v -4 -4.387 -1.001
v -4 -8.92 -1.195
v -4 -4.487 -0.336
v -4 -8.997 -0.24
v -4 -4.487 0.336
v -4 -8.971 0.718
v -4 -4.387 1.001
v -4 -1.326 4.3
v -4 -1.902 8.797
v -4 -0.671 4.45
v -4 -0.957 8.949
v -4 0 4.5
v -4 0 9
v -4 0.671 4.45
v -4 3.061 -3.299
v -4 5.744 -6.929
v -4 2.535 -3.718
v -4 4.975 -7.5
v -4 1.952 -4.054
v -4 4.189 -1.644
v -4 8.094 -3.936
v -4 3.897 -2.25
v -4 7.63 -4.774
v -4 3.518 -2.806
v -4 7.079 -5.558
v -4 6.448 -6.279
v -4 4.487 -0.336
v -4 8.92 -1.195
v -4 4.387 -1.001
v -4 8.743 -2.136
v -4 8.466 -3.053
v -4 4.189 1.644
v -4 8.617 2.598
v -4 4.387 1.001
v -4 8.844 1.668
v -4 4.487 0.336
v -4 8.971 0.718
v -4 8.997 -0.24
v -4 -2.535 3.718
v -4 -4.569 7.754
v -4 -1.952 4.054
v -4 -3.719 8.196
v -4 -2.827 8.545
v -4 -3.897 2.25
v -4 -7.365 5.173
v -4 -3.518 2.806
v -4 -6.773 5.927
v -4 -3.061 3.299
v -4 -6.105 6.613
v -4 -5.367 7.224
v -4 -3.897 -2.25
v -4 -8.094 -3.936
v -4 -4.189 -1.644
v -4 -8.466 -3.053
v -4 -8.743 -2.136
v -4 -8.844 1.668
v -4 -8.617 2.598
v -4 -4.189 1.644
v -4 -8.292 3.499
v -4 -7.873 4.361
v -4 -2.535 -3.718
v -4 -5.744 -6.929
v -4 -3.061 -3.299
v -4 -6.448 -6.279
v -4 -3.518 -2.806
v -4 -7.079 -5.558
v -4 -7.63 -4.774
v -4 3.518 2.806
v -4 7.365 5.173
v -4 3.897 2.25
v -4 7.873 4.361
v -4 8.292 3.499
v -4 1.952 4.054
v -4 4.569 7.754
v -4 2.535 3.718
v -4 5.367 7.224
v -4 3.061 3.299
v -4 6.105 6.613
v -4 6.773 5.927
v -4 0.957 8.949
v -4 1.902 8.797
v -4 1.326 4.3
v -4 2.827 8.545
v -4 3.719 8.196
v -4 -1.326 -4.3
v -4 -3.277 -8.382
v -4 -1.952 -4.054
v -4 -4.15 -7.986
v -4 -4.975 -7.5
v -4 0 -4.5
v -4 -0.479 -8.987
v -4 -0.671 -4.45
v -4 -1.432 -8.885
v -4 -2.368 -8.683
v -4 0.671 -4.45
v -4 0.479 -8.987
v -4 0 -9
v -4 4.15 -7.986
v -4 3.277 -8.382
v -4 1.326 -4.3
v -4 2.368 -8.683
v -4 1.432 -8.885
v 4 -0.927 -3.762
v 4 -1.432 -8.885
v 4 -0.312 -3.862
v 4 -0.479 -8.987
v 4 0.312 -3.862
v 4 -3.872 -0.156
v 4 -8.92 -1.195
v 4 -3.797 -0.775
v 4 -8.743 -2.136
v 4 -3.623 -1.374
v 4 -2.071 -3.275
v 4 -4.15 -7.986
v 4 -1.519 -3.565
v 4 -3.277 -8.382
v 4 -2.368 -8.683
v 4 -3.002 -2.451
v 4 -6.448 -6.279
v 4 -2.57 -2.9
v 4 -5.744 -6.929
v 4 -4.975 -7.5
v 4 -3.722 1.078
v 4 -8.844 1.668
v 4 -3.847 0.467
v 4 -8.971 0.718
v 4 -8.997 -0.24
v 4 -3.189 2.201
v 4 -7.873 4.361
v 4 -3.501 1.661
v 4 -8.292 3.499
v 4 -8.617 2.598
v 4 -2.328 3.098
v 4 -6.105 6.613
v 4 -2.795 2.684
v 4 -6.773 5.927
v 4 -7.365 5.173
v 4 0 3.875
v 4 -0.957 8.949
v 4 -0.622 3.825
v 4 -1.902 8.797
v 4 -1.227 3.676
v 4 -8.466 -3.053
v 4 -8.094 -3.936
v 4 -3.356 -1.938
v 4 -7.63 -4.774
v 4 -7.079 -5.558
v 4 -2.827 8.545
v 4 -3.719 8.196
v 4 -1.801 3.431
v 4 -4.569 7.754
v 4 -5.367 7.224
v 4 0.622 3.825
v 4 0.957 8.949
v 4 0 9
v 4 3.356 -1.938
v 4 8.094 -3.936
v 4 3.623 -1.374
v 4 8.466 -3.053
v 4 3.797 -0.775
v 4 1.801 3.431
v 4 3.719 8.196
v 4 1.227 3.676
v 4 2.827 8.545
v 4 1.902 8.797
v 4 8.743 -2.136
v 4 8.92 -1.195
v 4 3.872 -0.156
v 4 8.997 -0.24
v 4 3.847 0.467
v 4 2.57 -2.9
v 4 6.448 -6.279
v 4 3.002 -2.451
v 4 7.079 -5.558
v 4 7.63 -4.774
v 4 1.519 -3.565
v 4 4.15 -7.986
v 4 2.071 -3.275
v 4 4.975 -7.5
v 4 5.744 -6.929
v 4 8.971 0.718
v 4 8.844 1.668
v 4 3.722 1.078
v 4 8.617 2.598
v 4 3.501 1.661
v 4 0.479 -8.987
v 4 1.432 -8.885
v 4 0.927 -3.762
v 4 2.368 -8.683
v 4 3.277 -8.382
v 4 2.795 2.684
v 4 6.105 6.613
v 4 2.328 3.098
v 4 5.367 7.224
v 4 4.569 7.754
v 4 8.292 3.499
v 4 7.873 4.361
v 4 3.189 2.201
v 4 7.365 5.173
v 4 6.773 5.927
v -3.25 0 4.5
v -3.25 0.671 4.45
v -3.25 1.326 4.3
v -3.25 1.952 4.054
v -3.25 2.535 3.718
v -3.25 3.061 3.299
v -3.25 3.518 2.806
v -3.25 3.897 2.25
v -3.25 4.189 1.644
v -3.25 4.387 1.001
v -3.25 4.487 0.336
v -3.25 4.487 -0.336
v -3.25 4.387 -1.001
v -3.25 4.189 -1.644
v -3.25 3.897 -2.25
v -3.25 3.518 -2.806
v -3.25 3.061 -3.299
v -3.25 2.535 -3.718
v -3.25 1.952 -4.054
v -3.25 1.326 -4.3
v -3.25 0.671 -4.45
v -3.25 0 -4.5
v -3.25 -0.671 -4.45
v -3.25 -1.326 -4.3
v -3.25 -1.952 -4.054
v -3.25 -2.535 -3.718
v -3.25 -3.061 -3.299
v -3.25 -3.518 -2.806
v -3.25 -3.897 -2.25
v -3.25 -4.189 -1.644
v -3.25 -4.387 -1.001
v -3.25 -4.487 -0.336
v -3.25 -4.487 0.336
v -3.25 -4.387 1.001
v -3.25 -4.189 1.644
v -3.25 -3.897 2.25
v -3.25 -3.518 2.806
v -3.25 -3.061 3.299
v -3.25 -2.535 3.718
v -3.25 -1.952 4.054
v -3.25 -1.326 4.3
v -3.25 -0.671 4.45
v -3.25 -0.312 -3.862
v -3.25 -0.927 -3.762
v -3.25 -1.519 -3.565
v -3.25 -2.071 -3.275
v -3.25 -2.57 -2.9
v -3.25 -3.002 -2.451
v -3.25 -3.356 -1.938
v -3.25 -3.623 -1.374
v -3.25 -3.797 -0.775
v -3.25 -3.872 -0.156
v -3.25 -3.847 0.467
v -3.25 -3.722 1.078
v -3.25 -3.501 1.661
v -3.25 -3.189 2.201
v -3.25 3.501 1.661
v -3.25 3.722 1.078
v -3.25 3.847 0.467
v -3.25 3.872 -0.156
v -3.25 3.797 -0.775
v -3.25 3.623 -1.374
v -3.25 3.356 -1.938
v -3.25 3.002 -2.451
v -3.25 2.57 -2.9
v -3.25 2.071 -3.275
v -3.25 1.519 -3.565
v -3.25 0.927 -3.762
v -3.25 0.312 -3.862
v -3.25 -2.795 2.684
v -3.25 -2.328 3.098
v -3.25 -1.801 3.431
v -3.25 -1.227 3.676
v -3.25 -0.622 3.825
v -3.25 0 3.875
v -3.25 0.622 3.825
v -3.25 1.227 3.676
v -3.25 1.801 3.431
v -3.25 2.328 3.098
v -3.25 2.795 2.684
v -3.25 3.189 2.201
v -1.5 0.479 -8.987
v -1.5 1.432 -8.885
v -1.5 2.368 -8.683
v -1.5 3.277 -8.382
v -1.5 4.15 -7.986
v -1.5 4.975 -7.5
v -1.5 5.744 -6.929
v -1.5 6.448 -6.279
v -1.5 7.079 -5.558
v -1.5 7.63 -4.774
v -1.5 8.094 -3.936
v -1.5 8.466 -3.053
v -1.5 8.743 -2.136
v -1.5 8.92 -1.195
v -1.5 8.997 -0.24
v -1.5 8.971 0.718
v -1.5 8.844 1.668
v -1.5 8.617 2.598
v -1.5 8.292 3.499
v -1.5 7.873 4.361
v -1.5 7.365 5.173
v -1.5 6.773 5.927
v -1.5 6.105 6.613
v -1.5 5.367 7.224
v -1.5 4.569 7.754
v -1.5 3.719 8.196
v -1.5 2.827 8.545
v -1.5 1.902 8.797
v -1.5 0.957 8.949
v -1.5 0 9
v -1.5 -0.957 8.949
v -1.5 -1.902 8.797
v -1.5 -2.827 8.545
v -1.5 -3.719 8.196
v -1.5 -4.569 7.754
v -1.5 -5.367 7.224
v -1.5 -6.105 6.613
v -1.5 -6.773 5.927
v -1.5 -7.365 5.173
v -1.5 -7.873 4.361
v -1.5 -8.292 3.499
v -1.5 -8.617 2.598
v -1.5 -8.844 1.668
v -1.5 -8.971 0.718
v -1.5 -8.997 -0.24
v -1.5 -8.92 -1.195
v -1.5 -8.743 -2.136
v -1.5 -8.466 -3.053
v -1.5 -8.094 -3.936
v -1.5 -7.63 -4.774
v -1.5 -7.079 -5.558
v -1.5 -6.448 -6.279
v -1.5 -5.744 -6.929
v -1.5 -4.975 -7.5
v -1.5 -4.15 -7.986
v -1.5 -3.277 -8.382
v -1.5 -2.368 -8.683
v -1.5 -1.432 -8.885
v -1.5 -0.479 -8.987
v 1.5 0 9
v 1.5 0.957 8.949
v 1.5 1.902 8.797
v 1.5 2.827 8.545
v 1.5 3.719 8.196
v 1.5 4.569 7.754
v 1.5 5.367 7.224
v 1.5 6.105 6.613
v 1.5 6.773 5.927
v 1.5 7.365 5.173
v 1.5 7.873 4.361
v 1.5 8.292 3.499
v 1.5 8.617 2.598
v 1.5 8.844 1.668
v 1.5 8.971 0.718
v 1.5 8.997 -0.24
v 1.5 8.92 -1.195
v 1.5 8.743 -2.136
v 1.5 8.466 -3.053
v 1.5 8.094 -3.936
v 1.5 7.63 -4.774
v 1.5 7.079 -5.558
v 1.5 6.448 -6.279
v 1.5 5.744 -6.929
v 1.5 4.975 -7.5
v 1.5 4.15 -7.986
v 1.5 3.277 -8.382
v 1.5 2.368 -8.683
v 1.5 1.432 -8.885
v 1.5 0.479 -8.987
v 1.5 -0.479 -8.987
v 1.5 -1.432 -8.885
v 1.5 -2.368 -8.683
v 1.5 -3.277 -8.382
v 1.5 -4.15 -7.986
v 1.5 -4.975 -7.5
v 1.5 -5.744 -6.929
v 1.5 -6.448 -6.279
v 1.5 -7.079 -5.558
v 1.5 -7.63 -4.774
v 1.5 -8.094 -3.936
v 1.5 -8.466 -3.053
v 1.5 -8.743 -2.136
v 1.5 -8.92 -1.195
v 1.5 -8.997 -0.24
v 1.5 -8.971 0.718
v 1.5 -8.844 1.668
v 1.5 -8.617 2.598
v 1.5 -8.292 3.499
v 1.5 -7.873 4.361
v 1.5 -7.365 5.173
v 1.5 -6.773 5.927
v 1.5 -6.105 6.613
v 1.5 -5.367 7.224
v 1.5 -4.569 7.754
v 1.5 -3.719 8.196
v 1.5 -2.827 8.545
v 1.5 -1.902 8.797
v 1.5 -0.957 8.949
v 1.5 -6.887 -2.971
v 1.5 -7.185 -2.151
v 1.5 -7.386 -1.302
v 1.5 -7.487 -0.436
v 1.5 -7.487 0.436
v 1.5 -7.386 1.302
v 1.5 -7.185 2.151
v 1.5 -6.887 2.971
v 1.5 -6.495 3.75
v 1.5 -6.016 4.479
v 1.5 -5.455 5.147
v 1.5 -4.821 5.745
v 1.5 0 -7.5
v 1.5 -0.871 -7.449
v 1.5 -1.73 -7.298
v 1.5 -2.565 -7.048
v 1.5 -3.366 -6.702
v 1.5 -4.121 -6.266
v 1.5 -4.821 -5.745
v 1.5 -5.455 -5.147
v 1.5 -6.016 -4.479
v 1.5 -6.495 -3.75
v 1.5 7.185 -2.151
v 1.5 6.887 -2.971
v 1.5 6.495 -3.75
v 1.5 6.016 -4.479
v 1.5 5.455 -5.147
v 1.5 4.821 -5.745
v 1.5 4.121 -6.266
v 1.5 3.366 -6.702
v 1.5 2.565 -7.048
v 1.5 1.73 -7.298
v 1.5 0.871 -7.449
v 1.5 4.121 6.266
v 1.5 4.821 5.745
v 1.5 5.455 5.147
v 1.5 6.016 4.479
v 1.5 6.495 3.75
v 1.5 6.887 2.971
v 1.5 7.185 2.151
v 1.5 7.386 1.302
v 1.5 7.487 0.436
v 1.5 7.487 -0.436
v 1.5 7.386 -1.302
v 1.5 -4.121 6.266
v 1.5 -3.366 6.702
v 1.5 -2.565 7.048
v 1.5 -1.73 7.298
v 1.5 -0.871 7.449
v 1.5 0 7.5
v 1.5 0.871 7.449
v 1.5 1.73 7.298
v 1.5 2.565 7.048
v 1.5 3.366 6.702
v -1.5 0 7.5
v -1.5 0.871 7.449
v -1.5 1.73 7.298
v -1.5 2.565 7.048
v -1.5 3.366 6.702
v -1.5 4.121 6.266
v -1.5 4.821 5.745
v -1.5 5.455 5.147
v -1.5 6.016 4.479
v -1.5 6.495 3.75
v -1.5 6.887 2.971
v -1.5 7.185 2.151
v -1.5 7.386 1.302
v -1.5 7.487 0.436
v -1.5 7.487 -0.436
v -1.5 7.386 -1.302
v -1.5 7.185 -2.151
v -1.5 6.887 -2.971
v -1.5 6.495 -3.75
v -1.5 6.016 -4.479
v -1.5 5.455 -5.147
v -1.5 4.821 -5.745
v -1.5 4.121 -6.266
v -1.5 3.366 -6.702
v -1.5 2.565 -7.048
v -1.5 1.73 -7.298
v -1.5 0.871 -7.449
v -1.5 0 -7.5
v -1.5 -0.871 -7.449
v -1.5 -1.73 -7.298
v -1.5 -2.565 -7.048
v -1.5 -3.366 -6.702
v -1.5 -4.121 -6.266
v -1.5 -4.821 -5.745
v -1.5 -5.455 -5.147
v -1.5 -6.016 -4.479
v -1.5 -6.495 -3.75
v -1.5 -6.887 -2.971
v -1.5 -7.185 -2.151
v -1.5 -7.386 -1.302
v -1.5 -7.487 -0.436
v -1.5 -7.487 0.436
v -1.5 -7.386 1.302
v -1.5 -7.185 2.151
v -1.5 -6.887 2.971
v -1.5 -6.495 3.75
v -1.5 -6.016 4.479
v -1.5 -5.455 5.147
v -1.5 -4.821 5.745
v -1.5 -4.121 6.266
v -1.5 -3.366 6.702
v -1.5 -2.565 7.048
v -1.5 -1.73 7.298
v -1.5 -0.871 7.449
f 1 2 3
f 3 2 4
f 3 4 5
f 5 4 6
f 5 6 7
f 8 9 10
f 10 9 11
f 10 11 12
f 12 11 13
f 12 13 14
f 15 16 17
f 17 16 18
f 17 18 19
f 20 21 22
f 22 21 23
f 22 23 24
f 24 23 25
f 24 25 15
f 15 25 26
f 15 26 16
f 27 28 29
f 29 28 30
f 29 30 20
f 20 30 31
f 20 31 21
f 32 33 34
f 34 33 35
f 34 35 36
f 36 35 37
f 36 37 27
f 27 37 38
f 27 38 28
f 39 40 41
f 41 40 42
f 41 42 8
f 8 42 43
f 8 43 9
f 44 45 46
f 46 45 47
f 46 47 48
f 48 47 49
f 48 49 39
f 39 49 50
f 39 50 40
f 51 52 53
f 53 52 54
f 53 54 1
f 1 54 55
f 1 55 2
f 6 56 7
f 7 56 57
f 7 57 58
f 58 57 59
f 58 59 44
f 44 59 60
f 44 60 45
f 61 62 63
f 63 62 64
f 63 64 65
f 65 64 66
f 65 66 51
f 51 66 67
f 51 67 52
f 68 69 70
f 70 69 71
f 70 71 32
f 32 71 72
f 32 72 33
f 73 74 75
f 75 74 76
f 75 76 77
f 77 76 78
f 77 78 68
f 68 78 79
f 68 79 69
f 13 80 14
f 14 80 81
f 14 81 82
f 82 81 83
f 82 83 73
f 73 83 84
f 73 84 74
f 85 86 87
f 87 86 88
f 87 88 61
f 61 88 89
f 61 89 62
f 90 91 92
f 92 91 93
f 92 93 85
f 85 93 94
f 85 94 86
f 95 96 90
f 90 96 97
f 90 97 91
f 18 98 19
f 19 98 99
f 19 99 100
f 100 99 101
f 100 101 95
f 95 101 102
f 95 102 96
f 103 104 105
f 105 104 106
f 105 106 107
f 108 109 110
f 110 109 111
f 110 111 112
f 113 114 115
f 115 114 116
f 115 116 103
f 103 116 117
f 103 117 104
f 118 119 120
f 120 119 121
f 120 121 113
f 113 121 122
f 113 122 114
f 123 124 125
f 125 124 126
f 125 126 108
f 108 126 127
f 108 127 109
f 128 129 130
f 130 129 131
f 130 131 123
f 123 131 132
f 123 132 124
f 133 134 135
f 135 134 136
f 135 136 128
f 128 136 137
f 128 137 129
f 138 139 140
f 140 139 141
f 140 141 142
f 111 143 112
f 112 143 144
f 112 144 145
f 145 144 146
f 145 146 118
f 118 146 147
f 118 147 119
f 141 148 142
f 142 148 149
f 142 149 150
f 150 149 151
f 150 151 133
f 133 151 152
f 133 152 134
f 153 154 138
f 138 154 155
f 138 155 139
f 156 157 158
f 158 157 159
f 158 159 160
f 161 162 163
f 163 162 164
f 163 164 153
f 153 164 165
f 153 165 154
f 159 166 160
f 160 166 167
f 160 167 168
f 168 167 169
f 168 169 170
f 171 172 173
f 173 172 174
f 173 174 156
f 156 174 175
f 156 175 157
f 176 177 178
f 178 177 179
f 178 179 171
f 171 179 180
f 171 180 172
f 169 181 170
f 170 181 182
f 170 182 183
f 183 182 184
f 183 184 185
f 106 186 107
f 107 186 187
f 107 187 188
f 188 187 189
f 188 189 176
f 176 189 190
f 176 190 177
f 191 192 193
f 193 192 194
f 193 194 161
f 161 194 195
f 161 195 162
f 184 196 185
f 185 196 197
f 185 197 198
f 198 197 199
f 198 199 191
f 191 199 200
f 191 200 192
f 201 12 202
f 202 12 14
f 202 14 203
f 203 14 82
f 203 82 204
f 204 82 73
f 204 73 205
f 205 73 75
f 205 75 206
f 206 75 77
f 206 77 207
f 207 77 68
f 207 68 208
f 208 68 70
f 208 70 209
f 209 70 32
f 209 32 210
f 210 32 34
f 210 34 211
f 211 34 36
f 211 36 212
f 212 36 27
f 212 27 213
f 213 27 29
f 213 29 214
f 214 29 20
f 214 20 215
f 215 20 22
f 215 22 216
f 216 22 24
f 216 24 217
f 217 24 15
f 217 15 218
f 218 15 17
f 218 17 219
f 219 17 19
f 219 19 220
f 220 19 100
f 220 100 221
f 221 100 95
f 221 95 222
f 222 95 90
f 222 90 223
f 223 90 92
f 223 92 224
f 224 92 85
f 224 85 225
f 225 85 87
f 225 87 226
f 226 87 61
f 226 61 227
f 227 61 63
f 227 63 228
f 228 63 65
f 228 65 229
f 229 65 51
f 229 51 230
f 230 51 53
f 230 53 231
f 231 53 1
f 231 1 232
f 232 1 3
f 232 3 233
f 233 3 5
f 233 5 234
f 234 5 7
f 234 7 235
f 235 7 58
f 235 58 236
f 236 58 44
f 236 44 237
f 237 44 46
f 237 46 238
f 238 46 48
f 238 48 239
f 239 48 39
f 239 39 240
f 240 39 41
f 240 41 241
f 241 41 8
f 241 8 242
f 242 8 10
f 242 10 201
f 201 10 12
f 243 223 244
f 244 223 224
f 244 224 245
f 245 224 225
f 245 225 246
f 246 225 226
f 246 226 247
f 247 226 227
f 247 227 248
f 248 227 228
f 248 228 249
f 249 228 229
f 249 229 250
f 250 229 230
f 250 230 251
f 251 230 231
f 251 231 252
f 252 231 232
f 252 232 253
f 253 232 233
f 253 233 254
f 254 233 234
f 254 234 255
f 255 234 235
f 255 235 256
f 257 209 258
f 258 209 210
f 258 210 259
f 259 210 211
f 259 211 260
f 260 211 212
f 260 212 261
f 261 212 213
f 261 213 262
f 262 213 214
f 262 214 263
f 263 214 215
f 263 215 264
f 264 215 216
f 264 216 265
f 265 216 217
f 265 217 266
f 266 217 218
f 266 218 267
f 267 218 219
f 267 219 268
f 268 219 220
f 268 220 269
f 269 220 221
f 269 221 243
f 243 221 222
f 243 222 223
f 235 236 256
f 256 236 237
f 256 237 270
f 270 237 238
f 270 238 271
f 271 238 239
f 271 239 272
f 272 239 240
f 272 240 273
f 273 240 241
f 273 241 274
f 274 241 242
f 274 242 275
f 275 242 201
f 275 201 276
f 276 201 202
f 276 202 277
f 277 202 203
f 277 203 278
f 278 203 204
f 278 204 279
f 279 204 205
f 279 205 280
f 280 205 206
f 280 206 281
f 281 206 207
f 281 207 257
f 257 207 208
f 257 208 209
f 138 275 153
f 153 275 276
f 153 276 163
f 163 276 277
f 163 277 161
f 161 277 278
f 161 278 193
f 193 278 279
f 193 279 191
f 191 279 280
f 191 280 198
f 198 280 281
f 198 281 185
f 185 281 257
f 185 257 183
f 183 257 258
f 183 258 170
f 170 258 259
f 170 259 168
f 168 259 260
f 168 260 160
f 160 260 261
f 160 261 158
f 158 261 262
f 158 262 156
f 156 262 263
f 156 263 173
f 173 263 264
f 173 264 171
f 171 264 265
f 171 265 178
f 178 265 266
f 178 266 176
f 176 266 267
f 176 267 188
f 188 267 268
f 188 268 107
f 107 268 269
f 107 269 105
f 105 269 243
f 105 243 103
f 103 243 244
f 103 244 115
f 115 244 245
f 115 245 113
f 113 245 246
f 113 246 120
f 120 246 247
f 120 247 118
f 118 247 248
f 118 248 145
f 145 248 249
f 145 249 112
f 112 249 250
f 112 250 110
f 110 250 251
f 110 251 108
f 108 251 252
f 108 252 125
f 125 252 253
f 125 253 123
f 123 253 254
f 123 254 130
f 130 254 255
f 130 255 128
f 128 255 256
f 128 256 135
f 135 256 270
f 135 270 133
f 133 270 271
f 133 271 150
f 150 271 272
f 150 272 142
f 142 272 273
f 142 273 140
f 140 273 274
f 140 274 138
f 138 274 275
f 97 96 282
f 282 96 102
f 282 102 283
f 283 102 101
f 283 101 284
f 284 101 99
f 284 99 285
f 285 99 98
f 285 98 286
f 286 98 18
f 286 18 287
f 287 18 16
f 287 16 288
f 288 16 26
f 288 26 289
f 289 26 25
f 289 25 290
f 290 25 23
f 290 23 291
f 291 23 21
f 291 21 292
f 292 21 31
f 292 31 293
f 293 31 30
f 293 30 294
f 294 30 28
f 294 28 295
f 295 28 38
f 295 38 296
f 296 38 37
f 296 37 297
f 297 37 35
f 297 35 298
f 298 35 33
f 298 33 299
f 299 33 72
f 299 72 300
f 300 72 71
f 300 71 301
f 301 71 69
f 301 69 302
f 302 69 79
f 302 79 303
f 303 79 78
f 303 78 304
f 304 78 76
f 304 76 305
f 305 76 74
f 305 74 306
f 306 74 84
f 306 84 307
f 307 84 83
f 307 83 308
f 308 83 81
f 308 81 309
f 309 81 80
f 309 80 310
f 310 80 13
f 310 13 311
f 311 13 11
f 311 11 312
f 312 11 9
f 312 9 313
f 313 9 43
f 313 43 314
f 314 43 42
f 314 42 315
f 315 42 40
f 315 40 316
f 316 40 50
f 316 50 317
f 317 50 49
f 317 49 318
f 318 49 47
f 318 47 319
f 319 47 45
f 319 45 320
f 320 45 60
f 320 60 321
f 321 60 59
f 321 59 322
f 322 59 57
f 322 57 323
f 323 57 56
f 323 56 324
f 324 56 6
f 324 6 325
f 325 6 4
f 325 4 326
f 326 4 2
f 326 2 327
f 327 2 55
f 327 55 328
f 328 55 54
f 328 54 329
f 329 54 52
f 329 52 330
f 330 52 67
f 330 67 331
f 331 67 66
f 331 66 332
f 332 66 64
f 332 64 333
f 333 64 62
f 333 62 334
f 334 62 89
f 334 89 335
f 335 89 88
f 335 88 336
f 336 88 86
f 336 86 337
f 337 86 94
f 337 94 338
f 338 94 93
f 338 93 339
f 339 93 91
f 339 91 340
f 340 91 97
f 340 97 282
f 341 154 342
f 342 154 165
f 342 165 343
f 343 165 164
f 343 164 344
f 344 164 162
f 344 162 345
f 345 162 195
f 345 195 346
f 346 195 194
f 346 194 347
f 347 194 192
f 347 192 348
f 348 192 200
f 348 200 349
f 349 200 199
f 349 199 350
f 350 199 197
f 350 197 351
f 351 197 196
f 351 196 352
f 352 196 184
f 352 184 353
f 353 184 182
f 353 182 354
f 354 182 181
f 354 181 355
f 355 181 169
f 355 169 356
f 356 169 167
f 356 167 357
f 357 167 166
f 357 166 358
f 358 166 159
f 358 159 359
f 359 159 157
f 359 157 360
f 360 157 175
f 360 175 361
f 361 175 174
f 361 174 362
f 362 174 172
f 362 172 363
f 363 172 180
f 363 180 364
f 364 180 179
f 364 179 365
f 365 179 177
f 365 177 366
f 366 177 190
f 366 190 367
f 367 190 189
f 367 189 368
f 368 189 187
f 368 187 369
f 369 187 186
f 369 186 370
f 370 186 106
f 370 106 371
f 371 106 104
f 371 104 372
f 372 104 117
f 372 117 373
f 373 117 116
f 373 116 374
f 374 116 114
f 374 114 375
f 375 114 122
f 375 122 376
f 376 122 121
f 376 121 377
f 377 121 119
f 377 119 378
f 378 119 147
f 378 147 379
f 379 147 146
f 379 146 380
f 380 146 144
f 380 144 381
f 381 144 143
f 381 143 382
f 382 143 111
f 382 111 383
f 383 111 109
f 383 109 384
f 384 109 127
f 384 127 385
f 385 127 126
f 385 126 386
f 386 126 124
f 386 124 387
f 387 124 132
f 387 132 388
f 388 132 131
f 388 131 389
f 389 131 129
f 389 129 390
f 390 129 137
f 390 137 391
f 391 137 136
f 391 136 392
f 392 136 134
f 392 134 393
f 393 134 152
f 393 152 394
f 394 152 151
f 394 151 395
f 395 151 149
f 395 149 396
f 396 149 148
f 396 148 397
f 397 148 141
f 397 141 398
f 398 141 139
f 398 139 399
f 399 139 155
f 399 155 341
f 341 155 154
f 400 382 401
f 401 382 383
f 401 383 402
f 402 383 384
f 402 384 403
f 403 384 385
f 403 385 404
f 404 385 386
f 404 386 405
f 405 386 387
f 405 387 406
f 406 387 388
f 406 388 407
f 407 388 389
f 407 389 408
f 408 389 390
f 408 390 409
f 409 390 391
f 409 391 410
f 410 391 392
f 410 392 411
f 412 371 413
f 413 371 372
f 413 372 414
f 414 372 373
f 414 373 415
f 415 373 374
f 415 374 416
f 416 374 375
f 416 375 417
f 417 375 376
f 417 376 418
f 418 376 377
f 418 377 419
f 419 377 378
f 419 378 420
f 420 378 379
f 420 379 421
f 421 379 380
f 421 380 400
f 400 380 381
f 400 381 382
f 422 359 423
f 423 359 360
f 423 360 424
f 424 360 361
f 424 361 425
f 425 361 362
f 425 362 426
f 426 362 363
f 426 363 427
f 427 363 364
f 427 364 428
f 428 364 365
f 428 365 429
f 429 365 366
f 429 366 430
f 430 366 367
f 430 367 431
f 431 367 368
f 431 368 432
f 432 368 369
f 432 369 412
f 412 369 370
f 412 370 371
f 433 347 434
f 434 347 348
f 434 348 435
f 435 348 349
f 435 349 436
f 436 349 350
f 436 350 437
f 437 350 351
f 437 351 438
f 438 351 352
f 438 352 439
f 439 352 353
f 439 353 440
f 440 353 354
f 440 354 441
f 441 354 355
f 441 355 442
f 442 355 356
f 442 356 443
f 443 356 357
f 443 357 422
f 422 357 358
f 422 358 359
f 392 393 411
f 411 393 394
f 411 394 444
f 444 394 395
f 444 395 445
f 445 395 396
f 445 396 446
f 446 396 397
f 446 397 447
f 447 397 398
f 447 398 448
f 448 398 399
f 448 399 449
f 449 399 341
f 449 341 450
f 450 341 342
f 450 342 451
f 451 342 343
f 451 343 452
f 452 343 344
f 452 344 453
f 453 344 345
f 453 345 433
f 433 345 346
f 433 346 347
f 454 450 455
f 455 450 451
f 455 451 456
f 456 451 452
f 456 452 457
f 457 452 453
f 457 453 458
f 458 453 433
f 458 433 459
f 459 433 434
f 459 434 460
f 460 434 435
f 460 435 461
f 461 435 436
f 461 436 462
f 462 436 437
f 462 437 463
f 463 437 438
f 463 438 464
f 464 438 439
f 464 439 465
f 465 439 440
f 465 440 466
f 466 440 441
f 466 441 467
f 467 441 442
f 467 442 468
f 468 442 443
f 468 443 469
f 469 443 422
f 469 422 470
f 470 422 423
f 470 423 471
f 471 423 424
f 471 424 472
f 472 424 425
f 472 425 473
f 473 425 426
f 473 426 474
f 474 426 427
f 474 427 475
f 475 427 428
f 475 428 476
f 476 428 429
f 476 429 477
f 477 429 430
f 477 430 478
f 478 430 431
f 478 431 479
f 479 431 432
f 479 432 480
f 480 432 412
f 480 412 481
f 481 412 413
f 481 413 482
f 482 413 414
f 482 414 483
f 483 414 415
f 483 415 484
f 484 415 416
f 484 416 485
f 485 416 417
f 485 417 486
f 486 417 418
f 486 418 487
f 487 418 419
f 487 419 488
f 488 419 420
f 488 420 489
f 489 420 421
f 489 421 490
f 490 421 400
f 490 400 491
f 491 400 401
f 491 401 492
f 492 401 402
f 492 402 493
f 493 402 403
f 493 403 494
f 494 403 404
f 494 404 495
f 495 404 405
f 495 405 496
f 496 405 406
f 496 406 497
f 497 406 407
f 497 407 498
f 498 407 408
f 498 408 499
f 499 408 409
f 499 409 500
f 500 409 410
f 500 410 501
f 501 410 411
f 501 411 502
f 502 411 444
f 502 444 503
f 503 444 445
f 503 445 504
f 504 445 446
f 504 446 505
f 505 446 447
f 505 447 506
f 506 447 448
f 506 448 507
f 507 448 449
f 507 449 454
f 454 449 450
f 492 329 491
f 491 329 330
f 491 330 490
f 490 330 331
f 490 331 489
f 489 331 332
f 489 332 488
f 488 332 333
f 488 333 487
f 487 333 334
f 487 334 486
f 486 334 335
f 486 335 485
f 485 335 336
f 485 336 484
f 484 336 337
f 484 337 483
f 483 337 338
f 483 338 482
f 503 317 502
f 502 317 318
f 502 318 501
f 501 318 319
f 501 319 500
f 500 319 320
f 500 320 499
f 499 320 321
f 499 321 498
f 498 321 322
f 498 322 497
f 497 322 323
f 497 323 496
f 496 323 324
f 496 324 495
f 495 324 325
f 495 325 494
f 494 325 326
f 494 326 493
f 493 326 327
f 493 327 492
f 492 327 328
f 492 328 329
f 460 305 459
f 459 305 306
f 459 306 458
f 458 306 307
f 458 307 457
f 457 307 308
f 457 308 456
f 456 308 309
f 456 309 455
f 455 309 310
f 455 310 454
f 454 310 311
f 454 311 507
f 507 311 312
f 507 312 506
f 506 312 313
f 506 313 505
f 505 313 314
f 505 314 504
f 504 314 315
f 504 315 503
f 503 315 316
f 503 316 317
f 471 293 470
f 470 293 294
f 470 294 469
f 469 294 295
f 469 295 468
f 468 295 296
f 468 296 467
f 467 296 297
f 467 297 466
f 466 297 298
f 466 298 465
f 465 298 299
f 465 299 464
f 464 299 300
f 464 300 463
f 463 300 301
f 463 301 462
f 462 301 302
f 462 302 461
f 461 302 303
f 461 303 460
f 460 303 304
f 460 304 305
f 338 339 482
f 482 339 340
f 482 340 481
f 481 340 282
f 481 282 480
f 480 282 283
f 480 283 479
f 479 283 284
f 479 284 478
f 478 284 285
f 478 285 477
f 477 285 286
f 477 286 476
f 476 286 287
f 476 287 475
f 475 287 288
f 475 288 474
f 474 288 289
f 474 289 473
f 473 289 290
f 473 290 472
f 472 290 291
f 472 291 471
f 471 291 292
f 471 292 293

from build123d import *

# Parameters (mm, degrees)
SKETCH1_W = 8
SKETCH1_H = 8


with BuildPart() as part:
    # Sketch1 → Revolve1 (revolve)
    with BuildSketch(Plane.XY, mode=Mode.PRIVATE) as revolve1_sk:
        with Locations((0, 6)):
            Rectangle(SKETCH1_W, SKETCH1_H)
    revolve(revolve1_sk.sketch.rotate(Axis((0, 0, 0), (1, 0, 0)), 90), axis=Axis((0, 0, 0), (1, 0, 0)))

    # Sketch2 → Cut-Revolve1 (revolve, cut)
    with BuildSketch(Plane.XY, mode=Mode.PRIVATE) as cut_revolve1_sk:
        Polygon((-4, 4.5), (-3.25, 4.5), (-3.25, 3.875), (4, 3.875), (4, 1.375), (-4, 1.375), align=None)
    revolve(cut_revolve1_sk.sketch.rotate(Axis((-4, 0, 0), (1, 0, 0)), 90), axis=Axis((-4, 0, 0), (1, 0, 0)), mode=Mode.SUBTRACT)

    # Sketch5 → Cut-Revolve2 (revolve, cut)
    with BuildSketch(Plane.XY, mode=Mode.PRIVATE) as cut_revolve2_sk:
        Polygon((-5.693293246, 11), (6.09167682, 11), (6.09167682, 9), (1.5, 9), (1.5, 7.5), (-1.5, 7.5), (-1.5, 9), (-5.693293246, 9), align=None)
    revolve(cut_revolve2_sk.sketch.rotate(Axis((-5.693293246, 0, 0), (1, 0, 0)), 90), axis=Axis((-5.693293246, 0, 0), (1, 0, 0)), mode=Mode.SUBTRACT)


solid = part.part
